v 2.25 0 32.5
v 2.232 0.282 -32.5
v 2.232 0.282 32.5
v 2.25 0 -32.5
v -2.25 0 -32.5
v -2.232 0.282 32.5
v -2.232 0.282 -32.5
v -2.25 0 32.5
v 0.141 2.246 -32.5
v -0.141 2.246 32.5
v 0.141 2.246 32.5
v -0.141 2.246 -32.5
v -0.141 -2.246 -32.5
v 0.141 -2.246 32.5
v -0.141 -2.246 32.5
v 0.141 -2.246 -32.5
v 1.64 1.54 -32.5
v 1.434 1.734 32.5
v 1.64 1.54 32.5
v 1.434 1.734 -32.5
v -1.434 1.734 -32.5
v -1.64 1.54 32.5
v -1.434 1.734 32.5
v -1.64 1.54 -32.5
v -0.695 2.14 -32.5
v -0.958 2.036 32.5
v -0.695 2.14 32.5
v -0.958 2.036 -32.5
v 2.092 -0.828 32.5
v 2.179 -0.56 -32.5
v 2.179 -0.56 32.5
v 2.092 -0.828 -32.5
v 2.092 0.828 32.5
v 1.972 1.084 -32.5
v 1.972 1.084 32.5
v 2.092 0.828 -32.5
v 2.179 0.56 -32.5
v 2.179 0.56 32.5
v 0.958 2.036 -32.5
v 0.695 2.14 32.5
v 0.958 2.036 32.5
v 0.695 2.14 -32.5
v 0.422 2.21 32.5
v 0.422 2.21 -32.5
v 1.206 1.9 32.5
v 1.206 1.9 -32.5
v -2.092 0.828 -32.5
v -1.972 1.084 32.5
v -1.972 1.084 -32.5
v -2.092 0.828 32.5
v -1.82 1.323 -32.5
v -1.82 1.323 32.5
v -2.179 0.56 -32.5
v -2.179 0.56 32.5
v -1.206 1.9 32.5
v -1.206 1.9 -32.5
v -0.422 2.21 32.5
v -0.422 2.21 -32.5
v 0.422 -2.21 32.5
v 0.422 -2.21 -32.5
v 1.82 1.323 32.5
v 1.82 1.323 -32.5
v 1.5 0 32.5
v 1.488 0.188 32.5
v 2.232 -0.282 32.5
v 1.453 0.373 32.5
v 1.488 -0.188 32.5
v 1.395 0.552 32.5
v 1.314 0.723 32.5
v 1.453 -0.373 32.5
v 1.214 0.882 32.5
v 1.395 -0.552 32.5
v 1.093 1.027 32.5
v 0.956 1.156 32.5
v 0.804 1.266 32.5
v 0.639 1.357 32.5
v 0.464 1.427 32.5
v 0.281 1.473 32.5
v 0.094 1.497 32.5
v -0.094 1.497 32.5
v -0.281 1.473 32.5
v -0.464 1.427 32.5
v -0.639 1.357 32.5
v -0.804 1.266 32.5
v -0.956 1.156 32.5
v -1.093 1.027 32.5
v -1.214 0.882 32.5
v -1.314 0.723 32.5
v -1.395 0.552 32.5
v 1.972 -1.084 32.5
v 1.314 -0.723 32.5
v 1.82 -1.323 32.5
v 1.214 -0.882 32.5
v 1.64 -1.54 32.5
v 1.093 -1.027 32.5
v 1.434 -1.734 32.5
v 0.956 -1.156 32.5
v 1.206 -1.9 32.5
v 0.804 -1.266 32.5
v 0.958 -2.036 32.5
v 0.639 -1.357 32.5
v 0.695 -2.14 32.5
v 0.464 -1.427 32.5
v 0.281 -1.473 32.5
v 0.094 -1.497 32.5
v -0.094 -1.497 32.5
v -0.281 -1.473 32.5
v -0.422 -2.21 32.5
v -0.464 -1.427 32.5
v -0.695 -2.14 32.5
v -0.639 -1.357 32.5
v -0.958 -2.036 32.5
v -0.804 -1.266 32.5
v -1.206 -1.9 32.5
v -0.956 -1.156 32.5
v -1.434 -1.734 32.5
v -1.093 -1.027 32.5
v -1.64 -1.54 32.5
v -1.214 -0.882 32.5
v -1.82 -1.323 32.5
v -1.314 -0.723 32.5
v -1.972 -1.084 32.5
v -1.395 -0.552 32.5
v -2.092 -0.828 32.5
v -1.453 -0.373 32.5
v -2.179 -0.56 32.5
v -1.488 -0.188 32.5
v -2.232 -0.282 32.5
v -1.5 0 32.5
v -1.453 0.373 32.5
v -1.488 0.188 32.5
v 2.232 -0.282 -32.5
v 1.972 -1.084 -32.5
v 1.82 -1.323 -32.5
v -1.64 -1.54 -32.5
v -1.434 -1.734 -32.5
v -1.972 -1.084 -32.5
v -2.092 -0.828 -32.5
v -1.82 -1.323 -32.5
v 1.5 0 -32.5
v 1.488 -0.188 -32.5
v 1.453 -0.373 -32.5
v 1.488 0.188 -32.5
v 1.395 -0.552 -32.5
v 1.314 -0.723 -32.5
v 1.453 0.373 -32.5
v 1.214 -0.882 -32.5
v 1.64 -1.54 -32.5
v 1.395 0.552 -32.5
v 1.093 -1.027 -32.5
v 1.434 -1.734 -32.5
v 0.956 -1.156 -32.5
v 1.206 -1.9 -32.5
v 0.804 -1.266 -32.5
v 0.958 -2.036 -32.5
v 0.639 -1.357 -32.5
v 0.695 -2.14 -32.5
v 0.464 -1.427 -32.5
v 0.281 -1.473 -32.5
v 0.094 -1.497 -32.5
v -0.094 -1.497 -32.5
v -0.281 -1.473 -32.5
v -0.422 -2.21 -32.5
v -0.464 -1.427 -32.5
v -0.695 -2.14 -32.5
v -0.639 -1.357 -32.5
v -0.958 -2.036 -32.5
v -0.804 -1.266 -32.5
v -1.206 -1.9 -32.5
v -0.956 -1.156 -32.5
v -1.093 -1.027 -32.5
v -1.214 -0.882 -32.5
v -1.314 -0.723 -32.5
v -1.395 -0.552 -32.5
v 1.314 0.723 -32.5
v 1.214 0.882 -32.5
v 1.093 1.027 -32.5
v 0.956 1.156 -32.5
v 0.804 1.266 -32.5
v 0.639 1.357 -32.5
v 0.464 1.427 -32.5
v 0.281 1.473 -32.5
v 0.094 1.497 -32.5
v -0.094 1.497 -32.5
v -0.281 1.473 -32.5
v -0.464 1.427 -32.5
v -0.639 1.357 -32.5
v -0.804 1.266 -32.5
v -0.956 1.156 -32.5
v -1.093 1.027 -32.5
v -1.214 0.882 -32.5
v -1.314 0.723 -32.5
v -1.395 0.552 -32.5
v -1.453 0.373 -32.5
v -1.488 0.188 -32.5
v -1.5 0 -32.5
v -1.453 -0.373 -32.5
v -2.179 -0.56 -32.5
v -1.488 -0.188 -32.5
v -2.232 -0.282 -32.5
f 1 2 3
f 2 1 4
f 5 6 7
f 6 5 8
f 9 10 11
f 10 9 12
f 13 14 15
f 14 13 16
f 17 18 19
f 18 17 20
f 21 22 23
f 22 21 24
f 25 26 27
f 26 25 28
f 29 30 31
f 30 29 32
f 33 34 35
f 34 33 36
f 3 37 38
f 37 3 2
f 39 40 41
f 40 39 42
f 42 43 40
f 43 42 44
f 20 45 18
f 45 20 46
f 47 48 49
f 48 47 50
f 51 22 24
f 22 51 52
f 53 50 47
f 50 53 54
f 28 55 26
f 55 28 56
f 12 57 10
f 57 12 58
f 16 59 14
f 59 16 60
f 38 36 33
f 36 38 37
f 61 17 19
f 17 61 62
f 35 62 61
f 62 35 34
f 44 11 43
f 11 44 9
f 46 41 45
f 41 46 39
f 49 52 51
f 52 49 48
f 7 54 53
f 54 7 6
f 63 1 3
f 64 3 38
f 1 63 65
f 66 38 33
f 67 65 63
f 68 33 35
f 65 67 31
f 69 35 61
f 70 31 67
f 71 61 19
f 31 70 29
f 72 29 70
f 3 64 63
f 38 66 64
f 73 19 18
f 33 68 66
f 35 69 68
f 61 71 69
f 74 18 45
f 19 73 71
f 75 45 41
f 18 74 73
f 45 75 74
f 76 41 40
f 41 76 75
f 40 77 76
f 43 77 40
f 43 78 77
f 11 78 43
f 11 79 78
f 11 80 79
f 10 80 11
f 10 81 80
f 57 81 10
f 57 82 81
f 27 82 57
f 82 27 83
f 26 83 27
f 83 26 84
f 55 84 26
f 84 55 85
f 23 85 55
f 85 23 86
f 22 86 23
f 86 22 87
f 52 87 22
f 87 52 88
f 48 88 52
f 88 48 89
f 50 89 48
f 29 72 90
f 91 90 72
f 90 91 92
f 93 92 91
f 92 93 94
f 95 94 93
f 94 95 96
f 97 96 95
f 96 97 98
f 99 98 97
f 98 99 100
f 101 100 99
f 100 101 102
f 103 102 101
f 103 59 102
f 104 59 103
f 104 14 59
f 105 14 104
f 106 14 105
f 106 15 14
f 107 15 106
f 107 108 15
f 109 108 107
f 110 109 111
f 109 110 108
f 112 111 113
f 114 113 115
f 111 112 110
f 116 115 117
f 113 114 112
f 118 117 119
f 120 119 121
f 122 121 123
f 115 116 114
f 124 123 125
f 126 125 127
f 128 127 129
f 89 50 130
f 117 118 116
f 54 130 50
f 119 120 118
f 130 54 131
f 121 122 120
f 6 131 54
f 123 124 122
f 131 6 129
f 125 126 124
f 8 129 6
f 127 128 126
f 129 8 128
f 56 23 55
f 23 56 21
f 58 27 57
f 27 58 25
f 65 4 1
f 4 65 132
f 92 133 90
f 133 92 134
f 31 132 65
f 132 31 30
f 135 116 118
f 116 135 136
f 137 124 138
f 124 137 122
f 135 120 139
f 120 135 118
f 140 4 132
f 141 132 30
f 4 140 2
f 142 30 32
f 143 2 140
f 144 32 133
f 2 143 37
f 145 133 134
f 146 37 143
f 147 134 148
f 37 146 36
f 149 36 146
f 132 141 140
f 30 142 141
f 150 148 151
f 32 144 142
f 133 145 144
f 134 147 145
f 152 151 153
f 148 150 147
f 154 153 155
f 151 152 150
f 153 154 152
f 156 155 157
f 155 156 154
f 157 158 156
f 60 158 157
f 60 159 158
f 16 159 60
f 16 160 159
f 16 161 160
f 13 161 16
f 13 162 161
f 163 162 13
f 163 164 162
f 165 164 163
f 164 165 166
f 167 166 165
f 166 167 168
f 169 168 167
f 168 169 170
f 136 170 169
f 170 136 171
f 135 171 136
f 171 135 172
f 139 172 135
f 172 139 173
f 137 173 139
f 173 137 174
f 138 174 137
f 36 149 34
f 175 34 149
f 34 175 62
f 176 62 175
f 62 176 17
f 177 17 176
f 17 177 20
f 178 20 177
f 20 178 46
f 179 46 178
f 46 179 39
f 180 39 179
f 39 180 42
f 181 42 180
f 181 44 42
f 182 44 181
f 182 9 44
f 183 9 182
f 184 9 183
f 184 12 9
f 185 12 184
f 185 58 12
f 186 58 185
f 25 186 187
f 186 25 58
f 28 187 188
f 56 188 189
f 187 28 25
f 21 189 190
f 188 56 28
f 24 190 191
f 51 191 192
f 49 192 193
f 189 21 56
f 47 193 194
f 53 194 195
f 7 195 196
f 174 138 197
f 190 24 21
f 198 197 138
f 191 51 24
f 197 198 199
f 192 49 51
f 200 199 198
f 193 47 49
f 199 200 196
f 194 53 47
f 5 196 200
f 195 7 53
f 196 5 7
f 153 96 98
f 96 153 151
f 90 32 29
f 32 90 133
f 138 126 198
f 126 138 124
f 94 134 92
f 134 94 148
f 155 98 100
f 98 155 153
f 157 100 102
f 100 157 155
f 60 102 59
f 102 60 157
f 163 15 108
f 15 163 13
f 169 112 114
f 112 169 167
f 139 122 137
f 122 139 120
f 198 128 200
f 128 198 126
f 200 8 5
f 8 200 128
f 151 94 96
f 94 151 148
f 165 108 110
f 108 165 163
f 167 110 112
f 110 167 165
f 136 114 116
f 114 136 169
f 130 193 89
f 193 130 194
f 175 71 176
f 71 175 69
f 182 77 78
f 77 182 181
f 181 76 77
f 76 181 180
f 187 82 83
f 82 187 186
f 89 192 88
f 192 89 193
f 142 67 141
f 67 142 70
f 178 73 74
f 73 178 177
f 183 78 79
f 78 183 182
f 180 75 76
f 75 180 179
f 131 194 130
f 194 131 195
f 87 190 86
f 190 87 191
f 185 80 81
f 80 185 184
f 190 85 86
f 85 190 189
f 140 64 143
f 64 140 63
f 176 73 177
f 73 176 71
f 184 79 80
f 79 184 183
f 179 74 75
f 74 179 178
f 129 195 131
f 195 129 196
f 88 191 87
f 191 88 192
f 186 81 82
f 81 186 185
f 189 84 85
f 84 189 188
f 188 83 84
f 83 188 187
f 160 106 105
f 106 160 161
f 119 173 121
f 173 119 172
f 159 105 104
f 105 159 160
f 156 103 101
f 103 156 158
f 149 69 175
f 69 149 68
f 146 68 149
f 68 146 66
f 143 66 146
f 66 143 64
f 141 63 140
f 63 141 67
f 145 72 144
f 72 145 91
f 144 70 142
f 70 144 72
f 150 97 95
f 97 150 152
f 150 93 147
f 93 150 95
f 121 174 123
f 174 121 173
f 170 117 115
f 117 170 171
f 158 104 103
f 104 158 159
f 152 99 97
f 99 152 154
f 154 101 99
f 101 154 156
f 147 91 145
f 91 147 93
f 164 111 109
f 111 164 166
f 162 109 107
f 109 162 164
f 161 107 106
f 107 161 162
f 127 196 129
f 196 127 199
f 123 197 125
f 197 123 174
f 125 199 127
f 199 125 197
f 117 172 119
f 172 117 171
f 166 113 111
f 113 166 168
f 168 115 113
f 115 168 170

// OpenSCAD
$fn = 50;


difference() {
	union() {
		translate(v = [0, 0, -32.5000000000]) {
			cylinder(h = 65, r = 2.2500000000);
		}
	}
	union() {
		translate(v = [0, 0, -100.0000000000]) {
			cylinder(h = 200, r = 1.5000000000);
		}
	}
}
